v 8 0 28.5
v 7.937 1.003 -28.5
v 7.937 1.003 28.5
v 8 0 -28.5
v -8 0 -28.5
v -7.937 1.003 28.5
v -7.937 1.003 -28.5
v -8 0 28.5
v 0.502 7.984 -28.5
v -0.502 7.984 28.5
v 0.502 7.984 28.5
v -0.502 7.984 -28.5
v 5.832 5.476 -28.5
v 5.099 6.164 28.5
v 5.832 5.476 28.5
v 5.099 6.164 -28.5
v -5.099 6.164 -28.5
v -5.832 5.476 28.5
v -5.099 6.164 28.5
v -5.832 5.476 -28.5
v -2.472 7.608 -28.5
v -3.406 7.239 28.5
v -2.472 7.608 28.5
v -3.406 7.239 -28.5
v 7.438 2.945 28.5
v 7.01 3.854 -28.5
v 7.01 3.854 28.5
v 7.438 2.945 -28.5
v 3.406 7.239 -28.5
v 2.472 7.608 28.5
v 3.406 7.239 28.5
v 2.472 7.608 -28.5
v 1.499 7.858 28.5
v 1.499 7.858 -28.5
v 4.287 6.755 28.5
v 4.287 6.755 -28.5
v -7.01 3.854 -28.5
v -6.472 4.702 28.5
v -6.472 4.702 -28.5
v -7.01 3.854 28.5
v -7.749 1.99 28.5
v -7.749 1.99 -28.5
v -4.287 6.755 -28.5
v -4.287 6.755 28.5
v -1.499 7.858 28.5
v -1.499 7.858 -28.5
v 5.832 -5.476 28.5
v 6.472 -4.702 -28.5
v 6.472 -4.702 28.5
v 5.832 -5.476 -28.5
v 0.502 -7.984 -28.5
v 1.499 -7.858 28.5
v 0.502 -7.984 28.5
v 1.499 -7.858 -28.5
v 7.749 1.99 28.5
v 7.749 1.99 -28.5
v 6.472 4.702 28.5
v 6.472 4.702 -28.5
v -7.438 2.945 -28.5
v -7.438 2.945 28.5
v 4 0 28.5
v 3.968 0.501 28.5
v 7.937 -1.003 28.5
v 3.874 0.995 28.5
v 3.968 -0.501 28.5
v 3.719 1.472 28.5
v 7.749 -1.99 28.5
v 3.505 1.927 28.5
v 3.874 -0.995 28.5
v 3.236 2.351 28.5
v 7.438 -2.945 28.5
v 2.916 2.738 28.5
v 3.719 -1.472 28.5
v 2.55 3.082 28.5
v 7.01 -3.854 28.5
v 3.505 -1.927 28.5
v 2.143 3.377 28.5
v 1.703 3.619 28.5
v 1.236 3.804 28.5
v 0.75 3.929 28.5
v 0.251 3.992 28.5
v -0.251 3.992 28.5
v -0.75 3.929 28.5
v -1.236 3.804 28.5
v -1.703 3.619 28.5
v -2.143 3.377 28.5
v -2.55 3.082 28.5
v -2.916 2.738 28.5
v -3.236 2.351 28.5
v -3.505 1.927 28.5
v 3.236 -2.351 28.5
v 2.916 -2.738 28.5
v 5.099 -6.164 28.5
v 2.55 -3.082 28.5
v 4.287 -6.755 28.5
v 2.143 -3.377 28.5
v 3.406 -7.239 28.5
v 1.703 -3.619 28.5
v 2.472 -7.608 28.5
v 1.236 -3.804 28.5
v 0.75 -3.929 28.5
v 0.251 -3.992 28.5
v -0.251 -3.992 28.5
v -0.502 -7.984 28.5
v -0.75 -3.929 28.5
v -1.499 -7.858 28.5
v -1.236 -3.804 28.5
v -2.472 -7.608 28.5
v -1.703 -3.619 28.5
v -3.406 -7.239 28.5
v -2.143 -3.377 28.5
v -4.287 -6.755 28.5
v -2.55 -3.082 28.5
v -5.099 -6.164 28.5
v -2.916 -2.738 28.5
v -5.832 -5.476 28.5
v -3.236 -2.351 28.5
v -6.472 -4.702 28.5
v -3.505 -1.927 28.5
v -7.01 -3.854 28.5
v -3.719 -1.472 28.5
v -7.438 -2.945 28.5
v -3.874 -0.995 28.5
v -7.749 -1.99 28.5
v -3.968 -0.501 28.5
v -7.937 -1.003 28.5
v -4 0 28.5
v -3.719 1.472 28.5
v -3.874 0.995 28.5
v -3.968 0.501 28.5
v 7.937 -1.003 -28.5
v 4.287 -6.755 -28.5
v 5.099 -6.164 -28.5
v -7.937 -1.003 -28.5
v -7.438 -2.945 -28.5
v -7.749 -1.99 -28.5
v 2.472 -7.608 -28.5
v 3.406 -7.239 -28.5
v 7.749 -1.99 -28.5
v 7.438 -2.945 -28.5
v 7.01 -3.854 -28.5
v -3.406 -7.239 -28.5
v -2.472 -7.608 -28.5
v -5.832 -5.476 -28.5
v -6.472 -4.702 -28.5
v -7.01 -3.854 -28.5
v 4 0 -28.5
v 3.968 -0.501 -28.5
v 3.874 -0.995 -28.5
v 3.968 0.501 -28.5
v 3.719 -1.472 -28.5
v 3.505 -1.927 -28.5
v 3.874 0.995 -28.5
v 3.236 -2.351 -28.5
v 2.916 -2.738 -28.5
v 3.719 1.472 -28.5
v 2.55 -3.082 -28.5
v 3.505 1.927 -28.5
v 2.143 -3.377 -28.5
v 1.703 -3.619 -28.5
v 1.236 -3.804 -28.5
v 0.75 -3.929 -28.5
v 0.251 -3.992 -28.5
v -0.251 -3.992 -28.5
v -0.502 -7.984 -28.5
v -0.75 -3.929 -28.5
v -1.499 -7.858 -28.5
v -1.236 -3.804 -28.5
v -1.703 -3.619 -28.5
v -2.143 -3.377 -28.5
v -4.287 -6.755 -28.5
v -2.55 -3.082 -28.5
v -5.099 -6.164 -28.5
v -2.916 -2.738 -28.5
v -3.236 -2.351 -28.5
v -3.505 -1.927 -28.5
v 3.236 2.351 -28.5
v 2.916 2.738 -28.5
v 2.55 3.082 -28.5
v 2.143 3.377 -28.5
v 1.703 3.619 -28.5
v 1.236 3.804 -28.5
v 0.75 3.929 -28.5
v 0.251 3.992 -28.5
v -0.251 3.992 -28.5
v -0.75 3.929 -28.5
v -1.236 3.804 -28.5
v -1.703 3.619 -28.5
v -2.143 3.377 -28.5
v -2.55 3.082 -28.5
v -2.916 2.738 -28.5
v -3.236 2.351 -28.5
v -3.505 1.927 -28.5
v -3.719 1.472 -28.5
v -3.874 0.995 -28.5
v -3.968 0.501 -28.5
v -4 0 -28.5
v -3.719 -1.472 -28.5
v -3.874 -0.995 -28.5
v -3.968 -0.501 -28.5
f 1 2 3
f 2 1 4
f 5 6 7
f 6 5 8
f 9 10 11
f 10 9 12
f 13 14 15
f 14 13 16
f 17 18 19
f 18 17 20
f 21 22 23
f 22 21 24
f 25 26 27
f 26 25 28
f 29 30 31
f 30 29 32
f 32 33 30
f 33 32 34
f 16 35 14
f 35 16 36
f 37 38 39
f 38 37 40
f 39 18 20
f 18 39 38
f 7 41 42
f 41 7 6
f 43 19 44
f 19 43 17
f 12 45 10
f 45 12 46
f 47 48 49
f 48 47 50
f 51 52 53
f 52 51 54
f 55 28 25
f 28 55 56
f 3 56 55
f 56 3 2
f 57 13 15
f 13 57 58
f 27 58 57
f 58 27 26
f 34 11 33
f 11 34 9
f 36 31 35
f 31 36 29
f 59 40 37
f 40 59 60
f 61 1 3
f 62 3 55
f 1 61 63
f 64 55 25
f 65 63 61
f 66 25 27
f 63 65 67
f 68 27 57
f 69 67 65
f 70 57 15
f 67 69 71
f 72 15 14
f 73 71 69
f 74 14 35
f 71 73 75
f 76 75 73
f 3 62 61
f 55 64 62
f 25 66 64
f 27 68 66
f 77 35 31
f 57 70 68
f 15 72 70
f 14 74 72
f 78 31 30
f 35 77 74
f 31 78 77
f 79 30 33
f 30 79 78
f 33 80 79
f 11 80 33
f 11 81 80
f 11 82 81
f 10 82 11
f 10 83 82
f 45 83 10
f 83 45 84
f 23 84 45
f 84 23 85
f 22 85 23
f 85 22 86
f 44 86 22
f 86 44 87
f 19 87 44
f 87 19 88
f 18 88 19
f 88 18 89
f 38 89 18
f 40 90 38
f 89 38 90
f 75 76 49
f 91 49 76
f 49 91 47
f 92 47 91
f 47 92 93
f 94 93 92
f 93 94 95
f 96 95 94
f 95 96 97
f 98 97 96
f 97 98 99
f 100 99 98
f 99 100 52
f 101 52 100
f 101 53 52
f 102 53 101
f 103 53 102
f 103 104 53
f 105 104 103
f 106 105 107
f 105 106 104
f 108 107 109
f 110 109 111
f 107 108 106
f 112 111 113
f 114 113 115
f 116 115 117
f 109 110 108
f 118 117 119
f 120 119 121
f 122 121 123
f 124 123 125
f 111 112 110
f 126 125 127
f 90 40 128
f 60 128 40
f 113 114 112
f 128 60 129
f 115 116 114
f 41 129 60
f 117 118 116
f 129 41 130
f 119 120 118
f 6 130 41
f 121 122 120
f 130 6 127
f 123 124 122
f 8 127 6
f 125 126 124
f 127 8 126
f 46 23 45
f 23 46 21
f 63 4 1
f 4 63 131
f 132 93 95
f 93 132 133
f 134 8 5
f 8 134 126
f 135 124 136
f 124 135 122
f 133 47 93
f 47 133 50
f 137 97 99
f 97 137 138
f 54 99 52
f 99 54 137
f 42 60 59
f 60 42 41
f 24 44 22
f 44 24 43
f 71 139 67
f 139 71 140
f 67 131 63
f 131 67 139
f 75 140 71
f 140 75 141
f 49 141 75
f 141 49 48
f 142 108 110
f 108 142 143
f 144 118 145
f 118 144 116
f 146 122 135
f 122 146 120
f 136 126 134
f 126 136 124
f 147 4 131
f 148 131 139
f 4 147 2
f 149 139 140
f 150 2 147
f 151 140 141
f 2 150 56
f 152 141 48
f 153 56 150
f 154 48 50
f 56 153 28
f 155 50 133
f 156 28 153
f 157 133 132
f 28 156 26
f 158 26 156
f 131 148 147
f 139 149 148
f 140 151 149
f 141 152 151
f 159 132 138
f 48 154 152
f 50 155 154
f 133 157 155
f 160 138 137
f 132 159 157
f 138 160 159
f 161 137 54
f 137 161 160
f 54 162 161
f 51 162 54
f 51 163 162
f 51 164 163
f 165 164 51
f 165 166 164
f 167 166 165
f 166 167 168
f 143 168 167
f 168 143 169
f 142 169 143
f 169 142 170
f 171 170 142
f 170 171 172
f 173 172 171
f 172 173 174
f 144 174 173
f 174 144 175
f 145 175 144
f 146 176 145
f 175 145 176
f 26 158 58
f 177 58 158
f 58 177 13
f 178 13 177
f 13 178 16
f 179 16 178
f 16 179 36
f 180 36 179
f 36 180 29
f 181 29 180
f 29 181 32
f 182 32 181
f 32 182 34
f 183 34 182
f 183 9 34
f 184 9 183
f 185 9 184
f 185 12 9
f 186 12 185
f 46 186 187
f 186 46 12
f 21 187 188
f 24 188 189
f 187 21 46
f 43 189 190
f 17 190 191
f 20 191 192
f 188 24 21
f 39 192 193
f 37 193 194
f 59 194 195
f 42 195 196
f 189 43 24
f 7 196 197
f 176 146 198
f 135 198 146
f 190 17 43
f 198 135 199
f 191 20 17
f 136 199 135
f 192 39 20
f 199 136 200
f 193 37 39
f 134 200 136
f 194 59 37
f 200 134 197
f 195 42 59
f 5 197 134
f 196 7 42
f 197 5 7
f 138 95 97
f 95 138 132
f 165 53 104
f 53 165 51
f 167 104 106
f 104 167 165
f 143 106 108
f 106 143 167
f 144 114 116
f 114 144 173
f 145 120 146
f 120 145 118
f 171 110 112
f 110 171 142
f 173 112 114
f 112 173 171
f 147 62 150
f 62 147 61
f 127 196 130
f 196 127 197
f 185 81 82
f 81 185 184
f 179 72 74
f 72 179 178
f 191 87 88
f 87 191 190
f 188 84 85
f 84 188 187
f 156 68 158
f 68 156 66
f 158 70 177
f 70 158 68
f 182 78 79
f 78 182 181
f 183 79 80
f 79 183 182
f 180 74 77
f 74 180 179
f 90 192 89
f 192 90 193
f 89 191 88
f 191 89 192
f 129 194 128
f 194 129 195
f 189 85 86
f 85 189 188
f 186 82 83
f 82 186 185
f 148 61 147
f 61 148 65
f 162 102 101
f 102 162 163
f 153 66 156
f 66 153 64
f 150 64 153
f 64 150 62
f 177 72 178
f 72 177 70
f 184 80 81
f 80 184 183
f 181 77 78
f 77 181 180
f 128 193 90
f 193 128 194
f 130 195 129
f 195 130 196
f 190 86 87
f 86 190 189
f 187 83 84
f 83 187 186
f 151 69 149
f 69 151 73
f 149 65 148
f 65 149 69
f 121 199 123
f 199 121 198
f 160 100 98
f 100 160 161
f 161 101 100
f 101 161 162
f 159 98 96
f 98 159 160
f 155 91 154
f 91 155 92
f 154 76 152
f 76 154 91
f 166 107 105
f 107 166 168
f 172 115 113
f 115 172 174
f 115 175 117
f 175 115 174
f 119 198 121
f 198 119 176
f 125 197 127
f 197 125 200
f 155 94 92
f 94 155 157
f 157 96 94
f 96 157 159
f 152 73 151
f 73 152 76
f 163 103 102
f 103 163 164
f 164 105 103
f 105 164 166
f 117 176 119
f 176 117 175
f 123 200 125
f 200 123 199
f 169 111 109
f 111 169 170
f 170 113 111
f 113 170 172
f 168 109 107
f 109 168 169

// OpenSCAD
$fn = 50;


difference() {
	union() {
		translate(v = [0, 0, -28.5000000000]) {
			cylinder(h = 57, r = 8.0000000000);
		}
	}
	union() {
		translate(v = [0, 0, -100.0000000000]) {
			cylinder(h = 200, r = 4.0000000000);
		}
	}
}
